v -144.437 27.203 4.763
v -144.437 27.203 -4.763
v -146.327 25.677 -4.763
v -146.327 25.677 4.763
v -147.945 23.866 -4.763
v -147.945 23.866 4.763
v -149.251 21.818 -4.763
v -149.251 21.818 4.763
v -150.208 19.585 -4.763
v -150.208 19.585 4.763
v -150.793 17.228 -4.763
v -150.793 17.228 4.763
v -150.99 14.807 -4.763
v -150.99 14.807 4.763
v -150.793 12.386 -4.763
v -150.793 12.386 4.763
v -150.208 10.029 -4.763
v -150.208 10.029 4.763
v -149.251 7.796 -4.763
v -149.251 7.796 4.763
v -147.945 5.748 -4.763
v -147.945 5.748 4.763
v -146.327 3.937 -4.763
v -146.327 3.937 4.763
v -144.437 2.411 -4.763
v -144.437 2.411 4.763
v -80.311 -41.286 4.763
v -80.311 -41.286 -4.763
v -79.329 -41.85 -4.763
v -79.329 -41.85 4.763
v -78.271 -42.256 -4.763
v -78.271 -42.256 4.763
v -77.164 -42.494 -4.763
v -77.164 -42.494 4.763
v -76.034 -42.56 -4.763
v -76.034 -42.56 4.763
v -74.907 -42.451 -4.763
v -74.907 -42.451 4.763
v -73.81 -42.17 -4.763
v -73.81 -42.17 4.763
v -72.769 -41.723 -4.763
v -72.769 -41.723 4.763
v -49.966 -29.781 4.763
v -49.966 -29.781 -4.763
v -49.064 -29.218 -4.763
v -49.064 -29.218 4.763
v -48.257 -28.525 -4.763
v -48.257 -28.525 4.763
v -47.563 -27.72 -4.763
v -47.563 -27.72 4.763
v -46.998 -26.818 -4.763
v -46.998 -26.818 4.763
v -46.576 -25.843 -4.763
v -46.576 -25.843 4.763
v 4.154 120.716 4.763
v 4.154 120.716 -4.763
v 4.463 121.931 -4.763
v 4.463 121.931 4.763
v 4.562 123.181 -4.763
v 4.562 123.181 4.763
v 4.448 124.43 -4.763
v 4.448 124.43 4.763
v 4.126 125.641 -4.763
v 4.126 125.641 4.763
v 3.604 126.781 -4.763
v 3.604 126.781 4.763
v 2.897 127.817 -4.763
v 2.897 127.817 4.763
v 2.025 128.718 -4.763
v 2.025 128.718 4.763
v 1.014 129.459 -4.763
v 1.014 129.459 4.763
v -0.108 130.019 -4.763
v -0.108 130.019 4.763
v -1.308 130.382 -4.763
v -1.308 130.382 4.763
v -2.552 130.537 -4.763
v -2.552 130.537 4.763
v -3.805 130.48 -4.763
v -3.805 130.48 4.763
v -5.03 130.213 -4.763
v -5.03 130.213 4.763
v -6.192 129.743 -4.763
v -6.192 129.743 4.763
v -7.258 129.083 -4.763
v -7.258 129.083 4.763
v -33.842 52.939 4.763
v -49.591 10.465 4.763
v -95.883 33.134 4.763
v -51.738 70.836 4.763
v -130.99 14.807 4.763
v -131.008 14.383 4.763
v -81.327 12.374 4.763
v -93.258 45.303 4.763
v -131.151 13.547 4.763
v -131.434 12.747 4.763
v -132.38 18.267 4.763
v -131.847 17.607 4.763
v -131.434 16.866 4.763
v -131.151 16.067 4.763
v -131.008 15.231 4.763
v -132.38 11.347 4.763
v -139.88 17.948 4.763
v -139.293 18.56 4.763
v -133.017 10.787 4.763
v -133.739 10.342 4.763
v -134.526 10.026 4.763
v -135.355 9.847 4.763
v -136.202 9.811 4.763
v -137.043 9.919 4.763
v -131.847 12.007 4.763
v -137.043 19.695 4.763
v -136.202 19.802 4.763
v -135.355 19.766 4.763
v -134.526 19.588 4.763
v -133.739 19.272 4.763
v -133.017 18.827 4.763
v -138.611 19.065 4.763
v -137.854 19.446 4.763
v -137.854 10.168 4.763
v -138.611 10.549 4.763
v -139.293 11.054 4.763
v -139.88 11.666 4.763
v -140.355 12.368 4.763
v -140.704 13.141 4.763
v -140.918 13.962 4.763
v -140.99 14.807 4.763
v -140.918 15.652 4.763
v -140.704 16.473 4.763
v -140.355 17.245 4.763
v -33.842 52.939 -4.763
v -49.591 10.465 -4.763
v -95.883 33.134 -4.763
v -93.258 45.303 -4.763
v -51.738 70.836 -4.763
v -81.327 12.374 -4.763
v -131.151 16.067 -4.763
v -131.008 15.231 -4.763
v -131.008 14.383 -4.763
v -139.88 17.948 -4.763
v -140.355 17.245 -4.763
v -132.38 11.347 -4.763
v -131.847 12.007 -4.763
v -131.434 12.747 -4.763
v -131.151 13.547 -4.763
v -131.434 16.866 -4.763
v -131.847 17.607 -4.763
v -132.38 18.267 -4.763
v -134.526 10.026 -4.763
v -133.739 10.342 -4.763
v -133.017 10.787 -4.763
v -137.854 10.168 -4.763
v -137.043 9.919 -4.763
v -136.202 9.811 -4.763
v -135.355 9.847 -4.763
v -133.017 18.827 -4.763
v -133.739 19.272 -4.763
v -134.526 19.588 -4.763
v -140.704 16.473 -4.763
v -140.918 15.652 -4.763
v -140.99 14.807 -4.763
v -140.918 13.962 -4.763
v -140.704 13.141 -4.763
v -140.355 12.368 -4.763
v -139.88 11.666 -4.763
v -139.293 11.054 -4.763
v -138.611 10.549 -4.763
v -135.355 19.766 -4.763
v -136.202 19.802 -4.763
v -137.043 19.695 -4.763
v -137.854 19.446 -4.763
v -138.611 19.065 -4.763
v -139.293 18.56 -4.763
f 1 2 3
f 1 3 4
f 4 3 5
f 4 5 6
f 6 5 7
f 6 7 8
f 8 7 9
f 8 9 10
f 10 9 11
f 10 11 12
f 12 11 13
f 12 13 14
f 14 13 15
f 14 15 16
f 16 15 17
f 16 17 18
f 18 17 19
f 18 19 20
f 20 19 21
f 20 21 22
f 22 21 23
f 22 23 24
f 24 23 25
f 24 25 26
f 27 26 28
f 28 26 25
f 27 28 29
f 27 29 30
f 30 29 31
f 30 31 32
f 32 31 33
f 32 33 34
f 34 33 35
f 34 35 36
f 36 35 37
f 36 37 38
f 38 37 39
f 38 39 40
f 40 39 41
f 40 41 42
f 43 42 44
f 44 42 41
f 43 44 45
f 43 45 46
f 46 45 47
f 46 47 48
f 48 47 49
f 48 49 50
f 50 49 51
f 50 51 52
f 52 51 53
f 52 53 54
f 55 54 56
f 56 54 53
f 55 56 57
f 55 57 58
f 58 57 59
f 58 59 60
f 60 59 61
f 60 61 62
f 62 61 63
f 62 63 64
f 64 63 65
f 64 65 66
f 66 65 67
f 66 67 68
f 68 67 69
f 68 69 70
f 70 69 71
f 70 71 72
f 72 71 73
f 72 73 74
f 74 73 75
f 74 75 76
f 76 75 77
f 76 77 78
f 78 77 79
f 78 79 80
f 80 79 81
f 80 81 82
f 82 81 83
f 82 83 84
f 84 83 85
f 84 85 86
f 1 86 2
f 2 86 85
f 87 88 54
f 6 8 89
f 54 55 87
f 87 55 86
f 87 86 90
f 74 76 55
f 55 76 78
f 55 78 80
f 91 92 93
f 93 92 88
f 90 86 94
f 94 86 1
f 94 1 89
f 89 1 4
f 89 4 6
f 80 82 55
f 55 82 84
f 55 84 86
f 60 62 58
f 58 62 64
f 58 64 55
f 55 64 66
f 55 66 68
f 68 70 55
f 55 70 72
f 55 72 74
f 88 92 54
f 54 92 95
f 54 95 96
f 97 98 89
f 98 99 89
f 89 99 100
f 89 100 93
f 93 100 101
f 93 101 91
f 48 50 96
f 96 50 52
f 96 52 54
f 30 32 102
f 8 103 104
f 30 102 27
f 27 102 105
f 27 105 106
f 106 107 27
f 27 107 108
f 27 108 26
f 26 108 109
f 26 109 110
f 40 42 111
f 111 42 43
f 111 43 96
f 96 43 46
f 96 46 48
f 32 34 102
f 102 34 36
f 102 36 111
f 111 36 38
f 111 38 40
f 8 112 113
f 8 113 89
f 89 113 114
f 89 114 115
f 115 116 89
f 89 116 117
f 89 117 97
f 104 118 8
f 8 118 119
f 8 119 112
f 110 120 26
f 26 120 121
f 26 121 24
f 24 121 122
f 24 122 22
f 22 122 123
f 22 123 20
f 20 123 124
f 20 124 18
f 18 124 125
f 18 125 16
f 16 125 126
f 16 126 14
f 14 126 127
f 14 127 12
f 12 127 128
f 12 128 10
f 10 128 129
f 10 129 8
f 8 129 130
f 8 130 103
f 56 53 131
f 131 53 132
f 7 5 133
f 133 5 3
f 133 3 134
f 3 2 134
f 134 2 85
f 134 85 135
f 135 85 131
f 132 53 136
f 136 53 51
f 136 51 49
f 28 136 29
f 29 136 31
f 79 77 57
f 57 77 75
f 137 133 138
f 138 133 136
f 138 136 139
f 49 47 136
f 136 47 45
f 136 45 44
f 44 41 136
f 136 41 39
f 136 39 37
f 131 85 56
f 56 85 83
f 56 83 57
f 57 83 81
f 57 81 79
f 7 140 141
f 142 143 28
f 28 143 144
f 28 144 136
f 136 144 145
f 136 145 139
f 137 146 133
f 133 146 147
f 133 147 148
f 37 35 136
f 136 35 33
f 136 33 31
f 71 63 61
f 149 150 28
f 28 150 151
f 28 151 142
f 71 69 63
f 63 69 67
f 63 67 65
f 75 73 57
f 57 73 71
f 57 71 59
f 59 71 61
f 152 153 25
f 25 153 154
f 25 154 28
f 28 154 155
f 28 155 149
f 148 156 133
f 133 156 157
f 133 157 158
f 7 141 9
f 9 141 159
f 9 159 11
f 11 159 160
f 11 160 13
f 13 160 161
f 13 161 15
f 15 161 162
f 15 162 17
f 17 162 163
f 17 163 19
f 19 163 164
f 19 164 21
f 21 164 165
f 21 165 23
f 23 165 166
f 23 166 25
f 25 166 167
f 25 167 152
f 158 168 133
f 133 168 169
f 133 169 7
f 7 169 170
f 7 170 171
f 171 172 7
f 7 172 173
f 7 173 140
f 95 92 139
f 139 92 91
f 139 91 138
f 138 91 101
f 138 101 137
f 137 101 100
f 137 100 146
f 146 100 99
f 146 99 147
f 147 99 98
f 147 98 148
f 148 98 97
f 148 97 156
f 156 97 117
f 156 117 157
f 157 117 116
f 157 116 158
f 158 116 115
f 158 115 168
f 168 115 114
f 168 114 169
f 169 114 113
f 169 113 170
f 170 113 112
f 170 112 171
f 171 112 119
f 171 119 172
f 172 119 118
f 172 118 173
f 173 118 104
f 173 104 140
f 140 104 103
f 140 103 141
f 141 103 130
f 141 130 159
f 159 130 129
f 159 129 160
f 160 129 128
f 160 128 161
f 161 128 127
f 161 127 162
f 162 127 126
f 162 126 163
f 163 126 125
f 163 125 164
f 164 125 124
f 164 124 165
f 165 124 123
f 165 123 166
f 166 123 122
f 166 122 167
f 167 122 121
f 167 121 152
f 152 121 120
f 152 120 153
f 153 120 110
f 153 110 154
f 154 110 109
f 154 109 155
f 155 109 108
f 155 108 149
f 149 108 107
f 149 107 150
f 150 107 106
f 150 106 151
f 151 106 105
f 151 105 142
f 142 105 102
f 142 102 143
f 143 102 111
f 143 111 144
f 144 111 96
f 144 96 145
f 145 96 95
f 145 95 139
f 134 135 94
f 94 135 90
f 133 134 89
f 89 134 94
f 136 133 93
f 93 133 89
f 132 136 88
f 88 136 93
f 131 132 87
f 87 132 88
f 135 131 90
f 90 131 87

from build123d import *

# Parameters (mm, degrees)
SKETCH1_R           = 15
SKETCH1_R_2         = 7.343075537
SKETCH1_R_3         = 7.048050761
SKETCH1_R_4         = 7.405031705
BOSS_EXTRUDE1_DEPTH = 4.7625
SKETCH3_R           = 5
CUT_EXTRUDE1_DEPTH  = 9.525
CUT_EXTRUDE2_DEPTH  = 18.375


with BuildPart() as part:
    # Sketch1 → Boss-Extrude1 (new, symmetric)
    with BuildSketch(Plane.XY):
        with Locations((-135.989964622, 14.806967819)):
            Circle(SKETCH1_R)
        with BuildLine():
            Line((-144.43677034, 2.411344674), (-80.310762347, -41.286331891))
            ThreePointArc((-80.310762347, -41.286331891), (-79.60770007, -28.726487254), (-68.832651313, -35.218198752))
            ThreePointArc((-68.832651313, -35.218198752), (-69.89332652, -39.019804259), (-72.768932333, -41.723159126))
            Line((-72.768932333, -41.723159126), (-49.966216141, -29.780862162))
            ThreePointArc((-49.966216141, -29.780862162), (-59.266125529, -19.888386029), (-46.188084172, -23.53725338))
            ThreePointArc((-46.188084172, -23.53725338), (-46.285689954, -24.706156337), (-46.575803889, -25.842683907))
            Line((-46.575803889, -25.842683907), (4.15447513, 120.715821505))
            ThreePointArc((4.15447513, 120.715821505), (-7.221463009, 117.165978053), (-7.258334859, 129.082856736))
            Line((-7.258334859, 129.082856736), (-144.43677034, 27.202590964))
            ThreePointArc((-144.43677034, 27.202590964), (-128.979332902, 28.06785176), (-120.989964622, 14.806967819))
            ThreePointArc((-120.989964622, 14.806967819), (-128.979332902, 1.546083878), (-144.43677034, 2.411344674))
        make_face()
        with Locations((-76.175726851, -35.218198752)):
            Circle(SKETCH1_R_2)
        with Locations((-53.236134933, -23.53725338)):
            Circle(SKETCH1_R_3)
        with Locations((-2.84319901, 123.138021163)):
            Circle(SKETCH1_R_4)
    extrude(amount=BOSS_EXTRUDE1_DEPTH, both=True)

    # Sketch3 → Cut-Extrude1 (cut)
    with BuildSketch(Plane(origin=(0, 0, -4.7625), x_dir=(-1, 0, 0), z_dir=(0, 0, -1))):
        with Locations((135.989964622, 14.806967819)):
            Circle(SKETCH3_R)
    extrude(amount=-CUT_EXTRUDE1_DEPTH, mode=Mode.SUBTRACT)

    # Sketch5 → Cut-Extrude2 (cut)
    with BuildSketch(Plane(origin=(0, 0, -4.7625), x_dir=(-1, 0, 0), z_dir=(0, 0, -1))):
        Polygon((51.738143119, 70.835792845), (33.841540749, 52.939190474), (49.590550835, 10.464587516), (81.327192371, 12.373558435), (95.883095633, 33.133617185), (93.258260618, 45.303306796), align=None)
    extrude(amount=-CUT_EXTRUDE2_DEPTH, mode=Mode.SUBTRACT)


solid = part.part
